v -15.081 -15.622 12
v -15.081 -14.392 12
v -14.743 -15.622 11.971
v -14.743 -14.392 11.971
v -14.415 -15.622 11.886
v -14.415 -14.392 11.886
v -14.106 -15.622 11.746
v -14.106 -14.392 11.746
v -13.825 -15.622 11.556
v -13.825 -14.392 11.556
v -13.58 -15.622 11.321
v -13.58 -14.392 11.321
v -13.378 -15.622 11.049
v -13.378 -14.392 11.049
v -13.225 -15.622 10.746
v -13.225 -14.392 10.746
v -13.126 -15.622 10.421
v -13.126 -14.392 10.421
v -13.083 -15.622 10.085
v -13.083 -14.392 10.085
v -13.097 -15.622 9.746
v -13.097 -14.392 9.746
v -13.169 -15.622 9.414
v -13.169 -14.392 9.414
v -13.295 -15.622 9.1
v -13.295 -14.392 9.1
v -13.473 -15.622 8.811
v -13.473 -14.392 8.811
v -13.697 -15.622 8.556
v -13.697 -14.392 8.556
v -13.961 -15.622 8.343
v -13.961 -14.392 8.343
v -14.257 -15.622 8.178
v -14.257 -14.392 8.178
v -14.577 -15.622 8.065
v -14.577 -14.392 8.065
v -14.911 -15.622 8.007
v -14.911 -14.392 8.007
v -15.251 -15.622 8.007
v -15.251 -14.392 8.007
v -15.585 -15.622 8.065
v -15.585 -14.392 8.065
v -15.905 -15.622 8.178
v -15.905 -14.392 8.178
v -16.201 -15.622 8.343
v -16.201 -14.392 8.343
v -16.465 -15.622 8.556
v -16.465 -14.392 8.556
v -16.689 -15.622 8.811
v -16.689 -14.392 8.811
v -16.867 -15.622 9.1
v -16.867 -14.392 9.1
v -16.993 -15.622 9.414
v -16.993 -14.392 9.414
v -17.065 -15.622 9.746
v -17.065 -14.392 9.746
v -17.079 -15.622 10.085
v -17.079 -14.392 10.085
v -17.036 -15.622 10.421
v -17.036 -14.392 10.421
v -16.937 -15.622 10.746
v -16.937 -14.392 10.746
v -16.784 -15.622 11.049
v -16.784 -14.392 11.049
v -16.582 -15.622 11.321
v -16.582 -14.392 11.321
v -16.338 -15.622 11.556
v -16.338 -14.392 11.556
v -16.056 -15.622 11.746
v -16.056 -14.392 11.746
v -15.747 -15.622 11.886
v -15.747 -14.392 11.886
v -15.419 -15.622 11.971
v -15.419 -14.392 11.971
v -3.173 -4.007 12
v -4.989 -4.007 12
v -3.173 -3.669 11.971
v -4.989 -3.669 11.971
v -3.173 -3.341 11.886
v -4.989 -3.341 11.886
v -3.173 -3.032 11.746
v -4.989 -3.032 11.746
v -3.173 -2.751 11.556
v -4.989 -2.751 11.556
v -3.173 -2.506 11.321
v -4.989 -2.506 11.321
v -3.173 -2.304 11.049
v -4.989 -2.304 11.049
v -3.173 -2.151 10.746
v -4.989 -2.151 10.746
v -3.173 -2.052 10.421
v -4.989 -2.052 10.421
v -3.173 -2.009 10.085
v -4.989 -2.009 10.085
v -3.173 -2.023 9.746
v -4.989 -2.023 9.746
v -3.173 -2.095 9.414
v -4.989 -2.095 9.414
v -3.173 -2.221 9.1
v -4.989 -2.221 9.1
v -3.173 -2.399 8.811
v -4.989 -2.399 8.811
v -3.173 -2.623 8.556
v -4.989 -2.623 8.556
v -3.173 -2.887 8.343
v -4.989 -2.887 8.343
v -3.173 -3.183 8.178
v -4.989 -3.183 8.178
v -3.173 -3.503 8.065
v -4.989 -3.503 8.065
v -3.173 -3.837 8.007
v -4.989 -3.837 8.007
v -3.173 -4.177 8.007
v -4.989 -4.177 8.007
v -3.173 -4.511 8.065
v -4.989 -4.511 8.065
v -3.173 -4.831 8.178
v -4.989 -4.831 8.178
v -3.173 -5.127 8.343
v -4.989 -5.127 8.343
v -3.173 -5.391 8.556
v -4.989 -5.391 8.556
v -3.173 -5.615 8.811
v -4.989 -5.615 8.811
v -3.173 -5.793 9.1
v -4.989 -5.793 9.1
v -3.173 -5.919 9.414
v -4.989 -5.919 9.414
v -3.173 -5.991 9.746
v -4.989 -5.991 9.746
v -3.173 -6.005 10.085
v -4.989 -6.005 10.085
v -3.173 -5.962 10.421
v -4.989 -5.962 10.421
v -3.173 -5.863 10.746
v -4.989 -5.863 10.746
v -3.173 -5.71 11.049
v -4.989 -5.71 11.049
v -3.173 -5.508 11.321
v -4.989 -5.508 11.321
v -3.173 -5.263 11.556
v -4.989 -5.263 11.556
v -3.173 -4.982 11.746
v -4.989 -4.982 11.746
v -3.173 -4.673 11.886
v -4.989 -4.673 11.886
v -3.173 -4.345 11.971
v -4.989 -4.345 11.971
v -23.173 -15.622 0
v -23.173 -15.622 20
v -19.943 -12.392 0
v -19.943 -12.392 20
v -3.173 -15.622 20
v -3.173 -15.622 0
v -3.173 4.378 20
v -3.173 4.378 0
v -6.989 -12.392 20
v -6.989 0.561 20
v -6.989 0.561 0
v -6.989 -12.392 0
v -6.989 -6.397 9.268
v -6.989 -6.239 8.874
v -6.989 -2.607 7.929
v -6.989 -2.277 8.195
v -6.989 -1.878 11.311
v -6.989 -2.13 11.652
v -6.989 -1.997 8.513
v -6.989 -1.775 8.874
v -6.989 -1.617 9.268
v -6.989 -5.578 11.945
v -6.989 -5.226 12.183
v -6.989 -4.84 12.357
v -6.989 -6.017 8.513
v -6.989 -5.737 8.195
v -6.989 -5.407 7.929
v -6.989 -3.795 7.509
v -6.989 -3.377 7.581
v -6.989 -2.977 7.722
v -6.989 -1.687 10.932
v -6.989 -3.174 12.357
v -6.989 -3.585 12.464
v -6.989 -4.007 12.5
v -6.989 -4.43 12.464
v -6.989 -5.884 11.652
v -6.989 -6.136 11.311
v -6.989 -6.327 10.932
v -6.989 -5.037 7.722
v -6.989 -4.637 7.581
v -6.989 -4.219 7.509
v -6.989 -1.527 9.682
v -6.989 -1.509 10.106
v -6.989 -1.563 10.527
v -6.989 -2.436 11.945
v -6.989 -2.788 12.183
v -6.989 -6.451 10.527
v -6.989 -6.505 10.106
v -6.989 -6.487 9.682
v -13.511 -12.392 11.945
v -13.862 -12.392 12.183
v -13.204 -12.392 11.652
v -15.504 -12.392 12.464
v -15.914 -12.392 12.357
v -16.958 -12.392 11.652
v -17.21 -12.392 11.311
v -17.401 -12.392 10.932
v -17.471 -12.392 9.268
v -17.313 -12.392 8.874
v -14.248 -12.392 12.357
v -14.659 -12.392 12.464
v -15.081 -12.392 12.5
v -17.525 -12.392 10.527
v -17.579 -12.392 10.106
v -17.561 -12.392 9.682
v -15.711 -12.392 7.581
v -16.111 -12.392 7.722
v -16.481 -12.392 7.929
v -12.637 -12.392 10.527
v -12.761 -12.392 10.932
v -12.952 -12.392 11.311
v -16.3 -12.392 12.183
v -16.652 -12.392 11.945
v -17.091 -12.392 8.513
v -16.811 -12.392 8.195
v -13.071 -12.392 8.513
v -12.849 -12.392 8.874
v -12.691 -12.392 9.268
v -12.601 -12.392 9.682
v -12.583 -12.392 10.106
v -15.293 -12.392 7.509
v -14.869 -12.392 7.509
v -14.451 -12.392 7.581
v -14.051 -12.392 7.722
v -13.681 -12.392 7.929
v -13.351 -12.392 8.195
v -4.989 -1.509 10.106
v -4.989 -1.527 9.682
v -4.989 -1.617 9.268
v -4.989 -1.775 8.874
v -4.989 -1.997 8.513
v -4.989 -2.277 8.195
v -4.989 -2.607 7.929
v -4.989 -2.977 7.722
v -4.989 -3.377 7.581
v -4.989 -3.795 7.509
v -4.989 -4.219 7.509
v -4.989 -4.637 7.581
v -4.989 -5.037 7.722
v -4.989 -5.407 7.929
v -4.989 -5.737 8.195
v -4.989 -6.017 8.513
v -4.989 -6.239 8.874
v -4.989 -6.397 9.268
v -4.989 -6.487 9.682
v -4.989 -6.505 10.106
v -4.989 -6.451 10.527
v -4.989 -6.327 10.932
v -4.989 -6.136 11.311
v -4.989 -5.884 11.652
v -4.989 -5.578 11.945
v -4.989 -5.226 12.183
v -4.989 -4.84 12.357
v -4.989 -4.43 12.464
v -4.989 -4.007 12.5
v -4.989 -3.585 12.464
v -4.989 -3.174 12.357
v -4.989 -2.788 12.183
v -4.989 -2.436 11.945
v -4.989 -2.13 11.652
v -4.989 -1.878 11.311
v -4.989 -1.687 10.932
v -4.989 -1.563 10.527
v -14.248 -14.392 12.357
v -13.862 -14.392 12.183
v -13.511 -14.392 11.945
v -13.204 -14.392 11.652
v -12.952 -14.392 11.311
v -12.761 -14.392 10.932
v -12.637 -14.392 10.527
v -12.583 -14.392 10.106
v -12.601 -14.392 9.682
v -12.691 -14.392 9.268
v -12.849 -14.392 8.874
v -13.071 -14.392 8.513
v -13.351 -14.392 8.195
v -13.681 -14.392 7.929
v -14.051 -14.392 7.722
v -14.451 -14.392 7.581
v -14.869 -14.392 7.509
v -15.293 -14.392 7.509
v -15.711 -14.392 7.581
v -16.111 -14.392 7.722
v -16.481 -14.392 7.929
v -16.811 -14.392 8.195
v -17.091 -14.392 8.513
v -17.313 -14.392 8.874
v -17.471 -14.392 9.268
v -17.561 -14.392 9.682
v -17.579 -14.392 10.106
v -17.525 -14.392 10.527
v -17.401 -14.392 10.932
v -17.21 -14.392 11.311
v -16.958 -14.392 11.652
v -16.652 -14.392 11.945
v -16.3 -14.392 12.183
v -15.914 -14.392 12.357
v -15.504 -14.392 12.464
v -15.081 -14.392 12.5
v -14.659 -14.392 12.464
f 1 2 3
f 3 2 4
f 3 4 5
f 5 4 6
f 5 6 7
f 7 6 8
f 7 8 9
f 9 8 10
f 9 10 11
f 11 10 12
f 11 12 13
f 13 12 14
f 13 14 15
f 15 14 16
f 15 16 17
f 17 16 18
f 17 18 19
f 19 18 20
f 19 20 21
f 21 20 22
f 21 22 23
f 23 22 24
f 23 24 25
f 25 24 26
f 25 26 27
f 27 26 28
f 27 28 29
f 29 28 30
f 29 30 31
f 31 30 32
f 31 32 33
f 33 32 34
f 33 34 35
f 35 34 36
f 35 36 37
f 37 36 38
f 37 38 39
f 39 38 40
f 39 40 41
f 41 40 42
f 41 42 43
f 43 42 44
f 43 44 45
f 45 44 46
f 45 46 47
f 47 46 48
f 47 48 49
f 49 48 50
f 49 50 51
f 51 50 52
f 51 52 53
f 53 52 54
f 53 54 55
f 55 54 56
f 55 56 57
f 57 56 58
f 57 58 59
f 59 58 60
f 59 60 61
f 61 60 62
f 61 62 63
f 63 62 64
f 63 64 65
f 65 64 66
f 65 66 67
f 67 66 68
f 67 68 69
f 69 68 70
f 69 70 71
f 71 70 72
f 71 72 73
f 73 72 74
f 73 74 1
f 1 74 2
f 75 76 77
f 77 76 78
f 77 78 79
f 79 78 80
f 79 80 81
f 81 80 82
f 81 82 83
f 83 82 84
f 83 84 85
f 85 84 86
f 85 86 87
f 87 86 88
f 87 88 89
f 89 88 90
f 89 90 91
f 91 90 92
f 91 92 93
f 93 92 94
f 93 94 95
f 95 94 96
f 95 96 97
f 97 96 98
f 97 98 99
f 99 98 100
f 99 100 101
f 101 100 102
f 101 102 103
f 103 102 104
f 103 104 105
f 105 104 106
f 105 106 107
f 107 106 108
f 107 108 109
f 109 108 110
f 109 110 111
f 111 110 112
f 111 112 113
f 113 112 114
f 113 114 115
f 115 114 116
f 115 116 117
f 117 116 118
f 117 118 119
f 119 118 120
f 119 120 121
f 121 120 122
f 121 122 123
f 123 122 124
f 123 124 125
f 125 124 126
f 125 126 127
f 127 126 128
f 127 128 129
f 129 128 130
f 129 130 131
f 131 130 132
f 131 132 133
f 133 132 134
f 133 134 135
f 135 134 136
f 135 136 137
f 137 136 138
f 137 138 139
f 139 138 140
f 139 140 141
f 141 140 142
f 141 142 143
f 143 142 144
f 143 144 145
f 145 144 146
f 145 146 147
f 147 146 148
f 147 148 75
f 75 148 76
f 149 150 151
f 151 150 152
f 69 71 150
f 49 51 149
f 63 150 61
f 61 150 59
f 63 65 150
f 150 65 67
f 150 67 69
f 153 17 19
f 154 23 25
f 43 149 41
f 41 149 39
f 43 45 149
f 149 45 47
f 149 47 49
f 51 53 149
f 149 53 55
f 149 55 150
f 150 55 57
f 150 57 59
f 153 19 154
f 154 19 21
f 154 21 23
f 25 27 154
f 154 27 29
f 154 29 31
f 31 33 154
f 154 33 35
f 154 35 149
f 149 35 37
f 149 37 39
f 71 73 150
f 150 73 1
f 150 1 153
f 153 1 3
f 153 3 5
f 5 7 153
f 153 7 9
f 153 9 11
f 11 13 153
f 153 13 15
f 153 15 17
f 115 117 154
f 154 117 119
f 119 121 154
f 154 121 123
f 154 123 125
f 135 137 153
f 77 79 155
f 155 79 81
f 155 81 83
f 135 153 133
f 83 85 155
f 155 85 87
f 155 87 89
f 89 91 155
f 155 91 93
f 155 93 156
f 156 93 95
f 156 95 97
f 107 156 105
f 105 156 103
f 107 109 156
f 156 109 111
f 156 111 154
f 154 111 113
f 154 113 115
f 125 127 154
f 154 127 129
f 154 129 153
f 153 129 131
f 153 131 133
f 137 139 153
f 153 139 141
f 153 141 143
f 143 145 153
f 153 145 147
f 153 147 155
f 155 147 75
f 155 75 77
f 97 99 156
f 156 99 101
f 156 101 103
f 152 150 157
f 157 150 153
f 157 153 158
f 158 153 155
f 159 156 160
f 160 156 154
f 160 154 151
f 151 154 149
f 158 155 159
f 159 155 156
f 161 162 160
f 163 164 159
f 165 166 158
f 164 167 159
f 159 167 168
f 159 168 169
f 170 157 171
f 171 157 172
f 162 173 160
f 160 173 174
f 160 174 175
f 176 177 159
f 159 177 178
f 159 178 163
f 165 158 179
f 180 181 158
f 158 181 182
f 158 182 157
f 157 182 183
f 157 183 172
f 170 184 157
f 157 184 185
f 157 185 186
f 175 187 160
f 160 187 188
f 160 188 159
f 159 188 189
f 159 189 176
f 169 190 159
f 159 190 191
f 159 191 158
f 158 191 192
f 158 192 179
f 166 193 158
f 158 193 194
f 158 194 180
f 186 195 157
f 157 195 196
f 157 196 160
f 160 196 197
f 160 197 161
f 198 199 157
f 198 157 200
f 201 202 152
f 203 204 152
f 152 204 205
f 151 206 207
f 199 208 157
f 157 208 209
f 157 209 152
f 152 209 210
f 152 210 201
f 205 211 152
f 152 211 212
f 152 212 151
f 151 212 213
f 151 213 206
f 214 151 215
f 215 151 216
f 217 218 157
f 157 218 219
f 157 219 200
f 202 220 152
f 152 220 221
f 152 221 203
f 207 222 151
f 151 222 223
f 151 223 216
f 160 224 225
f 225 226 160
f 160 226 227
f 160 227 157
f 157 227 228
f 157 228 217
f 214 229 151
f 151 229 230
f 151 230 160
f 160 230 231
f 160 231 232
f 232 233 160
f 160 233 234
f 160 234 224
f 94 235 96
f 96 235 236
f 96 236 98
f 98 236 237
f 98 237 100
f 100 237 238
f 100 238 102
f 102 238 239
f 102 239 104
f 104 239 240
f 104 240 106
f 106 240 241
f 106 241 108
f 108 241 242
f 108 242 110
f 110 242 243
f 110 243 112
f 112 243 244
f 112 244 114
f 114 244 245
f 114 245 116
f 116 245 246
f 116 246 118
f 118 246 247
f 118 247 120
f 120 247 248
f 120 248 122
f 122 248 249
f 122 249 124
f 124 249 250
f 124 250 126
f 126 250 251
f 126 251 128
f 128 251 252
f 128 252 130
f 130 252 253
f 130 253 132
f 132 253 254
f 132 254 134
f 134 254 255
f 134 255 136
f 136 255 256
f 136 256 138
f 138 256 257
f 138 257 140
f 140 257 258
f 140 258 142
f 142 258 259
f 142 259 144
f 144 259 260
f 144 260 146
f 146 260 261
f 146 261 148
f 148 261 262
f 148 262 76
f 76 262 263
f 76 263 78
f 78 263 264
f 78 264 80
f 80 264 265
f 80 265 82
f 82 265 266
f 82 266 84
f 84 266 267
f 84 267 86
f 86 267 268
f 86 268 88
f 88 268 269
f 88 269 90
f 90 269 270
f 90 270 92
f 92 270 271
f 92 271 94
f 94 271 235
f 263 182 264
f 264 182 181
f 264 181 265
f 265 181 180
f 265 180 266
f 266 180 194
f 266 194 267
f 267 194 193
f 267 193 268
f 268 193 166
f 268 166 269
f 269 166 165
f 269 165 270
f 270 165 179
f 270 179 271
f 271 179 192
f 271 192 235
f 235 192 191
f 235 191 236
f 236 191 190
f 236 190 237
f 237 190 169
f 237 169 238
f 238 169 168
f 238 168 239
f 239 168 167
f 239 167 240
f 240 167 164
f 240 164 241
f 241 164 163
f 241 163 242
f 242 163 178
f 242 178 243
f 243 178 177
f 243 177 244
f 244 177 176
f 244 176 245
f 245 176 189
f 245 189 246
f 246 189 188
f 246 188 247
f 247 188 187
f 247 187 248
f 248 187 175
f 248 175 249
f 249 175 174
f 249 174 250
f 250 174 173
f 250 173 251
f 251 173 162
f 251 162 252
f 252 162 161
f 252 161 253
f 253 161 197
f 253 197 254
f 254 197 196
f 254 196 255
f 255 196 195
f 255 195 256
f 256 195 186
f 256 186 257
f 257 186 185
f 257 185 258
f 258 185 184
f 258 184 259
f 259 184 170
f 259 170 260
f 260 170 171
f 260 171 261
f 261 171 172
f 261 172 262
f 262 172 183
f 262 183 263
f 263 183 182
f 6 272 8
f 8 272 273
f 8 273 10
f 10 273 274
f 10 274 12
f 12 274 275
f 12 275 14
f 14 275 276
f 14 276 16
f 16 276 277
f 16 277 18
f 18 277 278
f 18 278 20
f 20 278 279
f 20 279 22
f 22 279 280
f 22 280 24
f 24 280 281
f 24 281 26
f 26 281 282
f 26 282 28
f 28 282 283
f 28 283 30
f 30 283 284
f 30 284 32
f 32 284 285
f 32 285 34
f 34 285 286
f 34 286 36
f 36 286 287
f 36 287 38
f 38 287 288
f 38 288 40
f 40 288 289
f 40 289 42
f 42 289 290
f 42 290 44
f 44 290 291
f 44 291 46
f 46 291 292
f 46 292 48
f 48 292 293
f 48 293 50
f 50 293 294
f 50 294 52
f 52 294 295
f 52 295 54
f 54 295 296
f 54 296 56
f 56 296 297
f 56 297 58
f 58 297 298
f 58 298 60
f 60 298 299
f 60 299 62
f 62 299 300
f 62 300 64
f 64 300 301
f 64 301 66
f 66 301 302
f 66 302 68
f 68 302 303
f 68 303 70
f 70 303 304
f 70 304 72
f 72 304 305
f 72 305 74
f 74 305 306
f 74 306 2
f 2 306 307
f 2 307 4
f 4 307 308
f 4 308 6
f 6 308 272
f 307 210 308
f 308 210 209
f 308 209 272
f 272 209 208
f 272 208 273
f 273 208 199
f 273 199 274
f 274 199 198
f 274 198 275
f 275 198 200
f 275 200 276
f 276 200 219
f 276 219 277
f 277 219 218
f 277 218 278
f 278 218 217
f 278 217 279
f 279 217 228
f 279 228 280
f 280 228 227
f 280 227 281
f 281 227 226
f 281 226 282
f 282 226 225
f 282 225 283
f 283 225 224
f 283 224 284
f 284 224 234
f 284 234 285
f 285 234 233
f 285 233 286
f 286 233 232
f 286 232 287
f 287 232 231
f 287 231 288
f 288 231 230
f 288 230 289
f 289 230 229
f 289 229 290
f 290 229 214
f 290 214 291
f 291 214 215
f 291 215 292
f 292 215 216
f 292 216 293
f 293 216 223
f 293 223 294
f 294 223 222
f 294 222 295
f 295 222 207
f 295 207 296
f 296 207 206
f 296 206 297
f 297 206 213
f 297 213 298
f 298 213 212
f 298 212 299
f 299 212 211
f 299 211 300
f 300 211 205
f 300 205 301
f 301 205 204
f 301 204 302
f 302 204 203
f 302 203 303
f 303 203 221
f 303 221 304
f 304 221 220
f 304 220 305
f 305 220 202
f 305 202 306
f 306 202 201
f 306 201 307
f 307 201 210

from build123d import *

# Parameters (mm, degrees)
IZIM1_W                     = 20
IZIM1_H                     = 20
Y_KSEKLIK_EKSTR_ZYON1_DEPTH = 20
KES_EKSTR_ZYON1_DEPTH       = 20
IZIM3_W                     = 17.224679165
IZIM3_H                     = 17.248412117
KES_EKSTR_ZYON2_DEPTH       = 20
IZIM4_R                     = 2
KES_EKSTR_ZYON3_DEPTH       = 20
IZIM7_R                     = 2.5
KES_EKSTR_ZYON7_DEPTH       = 2
IZIM8_R                     = 2
KES_EKSTR_ZYON8_DEPTH       = 10
IZIM9_R                     = 2.5
KES_EKSTR_ZYON9_DEPTH       = 2


with BuildPart() as part:
    # Çizim1 → Yükseklik-Ekstrüzyon1 (new body)
    with BuildSketch(Plane.XY):
        with Locations((-13.172756411, -5.622082974)):
            Rectangle(IZIM1_W, IZIM1_H)
    extrude(amount=Y_KSEKLIK_EKSTR_ZYON1_DEPTH)

    # Çizim2 → Kes-Ekstrüzyon1 (cut)
    with BuildSketch(Plane.XY.offset(20)):
        Polygon((-3.172756411, 4.377917026), (-23.172756411, -15.622082974), (-23.172756411, 4.377917026), align=None)
    extrude(amount=-KES_EKSTR_ZYON1_DEPTH, mode=Mode.SUBTRACT)

    # Çizim3 → Kes-Ekstrüzyon2 (cut)
    with BuildSketch(Plane.XY.offset(20)):
        with Locations((-15.601705124, -3.767784851)):
            Rectangle(IZIM3_W, IZIM3_H)
    extrude(amount=-KES_EKSTR_ZYON2_DEPTH, mode=Mode.SUBTRACT)

    # Çizim4 → Kes-Ekstrüzyon3 (cut)
    with BuildSketch(Plane.ZY.offset(6.989365541)):
        with Locations((10, -4.007036941)):
            Circle(IZIM4_R)
    extrude(amount=-KES_EKSTR_ZYON3_DEPTH, mode=Mode.SUBTRACT)

    # Çizim7 → Kes-Ekstrüzyon7 (cut)
    with BuildSketch(Plane.ZY.offset(6.989365541)):
        with Locations((10, -4.007036941)):
            Circle(IZIM7_R)
    extrude(amount=-KES_EKSTR_ZYON7_DEPTH, mode=Mode.SUBTRACT)

    # Çizim8 → Kes-Ekstrüzyon8 (cut)
    with BuildSketch(Plane(origin=(0, -12.391990909, 0), x_dir=(1, 0, 0), z_dir=(0, 1, 0))):
        with Locations((-15.081060976, -10)):
            Circle(IZIM8_R)
    extrude(amount=-KES_EKSTR_ZYON8_DEPTH, mode=Mode.SUBTRACT)

    # Çizim9 → Kes-Ekstrüzyon9 (cut)
    with BuildSketch(Plane(origin=(0, -12.391990909, 0), x_dir=(1, 0, 0), z_dir=(0, 1, 0))):
        with Locations((-15.081060976, -10)):
            Circle(IZIM9_R)
    extrude(amount=-KES_EKSTR_ZYON9_DEPTH, mode=Mode.SUBTRACT)


solid = part.part
